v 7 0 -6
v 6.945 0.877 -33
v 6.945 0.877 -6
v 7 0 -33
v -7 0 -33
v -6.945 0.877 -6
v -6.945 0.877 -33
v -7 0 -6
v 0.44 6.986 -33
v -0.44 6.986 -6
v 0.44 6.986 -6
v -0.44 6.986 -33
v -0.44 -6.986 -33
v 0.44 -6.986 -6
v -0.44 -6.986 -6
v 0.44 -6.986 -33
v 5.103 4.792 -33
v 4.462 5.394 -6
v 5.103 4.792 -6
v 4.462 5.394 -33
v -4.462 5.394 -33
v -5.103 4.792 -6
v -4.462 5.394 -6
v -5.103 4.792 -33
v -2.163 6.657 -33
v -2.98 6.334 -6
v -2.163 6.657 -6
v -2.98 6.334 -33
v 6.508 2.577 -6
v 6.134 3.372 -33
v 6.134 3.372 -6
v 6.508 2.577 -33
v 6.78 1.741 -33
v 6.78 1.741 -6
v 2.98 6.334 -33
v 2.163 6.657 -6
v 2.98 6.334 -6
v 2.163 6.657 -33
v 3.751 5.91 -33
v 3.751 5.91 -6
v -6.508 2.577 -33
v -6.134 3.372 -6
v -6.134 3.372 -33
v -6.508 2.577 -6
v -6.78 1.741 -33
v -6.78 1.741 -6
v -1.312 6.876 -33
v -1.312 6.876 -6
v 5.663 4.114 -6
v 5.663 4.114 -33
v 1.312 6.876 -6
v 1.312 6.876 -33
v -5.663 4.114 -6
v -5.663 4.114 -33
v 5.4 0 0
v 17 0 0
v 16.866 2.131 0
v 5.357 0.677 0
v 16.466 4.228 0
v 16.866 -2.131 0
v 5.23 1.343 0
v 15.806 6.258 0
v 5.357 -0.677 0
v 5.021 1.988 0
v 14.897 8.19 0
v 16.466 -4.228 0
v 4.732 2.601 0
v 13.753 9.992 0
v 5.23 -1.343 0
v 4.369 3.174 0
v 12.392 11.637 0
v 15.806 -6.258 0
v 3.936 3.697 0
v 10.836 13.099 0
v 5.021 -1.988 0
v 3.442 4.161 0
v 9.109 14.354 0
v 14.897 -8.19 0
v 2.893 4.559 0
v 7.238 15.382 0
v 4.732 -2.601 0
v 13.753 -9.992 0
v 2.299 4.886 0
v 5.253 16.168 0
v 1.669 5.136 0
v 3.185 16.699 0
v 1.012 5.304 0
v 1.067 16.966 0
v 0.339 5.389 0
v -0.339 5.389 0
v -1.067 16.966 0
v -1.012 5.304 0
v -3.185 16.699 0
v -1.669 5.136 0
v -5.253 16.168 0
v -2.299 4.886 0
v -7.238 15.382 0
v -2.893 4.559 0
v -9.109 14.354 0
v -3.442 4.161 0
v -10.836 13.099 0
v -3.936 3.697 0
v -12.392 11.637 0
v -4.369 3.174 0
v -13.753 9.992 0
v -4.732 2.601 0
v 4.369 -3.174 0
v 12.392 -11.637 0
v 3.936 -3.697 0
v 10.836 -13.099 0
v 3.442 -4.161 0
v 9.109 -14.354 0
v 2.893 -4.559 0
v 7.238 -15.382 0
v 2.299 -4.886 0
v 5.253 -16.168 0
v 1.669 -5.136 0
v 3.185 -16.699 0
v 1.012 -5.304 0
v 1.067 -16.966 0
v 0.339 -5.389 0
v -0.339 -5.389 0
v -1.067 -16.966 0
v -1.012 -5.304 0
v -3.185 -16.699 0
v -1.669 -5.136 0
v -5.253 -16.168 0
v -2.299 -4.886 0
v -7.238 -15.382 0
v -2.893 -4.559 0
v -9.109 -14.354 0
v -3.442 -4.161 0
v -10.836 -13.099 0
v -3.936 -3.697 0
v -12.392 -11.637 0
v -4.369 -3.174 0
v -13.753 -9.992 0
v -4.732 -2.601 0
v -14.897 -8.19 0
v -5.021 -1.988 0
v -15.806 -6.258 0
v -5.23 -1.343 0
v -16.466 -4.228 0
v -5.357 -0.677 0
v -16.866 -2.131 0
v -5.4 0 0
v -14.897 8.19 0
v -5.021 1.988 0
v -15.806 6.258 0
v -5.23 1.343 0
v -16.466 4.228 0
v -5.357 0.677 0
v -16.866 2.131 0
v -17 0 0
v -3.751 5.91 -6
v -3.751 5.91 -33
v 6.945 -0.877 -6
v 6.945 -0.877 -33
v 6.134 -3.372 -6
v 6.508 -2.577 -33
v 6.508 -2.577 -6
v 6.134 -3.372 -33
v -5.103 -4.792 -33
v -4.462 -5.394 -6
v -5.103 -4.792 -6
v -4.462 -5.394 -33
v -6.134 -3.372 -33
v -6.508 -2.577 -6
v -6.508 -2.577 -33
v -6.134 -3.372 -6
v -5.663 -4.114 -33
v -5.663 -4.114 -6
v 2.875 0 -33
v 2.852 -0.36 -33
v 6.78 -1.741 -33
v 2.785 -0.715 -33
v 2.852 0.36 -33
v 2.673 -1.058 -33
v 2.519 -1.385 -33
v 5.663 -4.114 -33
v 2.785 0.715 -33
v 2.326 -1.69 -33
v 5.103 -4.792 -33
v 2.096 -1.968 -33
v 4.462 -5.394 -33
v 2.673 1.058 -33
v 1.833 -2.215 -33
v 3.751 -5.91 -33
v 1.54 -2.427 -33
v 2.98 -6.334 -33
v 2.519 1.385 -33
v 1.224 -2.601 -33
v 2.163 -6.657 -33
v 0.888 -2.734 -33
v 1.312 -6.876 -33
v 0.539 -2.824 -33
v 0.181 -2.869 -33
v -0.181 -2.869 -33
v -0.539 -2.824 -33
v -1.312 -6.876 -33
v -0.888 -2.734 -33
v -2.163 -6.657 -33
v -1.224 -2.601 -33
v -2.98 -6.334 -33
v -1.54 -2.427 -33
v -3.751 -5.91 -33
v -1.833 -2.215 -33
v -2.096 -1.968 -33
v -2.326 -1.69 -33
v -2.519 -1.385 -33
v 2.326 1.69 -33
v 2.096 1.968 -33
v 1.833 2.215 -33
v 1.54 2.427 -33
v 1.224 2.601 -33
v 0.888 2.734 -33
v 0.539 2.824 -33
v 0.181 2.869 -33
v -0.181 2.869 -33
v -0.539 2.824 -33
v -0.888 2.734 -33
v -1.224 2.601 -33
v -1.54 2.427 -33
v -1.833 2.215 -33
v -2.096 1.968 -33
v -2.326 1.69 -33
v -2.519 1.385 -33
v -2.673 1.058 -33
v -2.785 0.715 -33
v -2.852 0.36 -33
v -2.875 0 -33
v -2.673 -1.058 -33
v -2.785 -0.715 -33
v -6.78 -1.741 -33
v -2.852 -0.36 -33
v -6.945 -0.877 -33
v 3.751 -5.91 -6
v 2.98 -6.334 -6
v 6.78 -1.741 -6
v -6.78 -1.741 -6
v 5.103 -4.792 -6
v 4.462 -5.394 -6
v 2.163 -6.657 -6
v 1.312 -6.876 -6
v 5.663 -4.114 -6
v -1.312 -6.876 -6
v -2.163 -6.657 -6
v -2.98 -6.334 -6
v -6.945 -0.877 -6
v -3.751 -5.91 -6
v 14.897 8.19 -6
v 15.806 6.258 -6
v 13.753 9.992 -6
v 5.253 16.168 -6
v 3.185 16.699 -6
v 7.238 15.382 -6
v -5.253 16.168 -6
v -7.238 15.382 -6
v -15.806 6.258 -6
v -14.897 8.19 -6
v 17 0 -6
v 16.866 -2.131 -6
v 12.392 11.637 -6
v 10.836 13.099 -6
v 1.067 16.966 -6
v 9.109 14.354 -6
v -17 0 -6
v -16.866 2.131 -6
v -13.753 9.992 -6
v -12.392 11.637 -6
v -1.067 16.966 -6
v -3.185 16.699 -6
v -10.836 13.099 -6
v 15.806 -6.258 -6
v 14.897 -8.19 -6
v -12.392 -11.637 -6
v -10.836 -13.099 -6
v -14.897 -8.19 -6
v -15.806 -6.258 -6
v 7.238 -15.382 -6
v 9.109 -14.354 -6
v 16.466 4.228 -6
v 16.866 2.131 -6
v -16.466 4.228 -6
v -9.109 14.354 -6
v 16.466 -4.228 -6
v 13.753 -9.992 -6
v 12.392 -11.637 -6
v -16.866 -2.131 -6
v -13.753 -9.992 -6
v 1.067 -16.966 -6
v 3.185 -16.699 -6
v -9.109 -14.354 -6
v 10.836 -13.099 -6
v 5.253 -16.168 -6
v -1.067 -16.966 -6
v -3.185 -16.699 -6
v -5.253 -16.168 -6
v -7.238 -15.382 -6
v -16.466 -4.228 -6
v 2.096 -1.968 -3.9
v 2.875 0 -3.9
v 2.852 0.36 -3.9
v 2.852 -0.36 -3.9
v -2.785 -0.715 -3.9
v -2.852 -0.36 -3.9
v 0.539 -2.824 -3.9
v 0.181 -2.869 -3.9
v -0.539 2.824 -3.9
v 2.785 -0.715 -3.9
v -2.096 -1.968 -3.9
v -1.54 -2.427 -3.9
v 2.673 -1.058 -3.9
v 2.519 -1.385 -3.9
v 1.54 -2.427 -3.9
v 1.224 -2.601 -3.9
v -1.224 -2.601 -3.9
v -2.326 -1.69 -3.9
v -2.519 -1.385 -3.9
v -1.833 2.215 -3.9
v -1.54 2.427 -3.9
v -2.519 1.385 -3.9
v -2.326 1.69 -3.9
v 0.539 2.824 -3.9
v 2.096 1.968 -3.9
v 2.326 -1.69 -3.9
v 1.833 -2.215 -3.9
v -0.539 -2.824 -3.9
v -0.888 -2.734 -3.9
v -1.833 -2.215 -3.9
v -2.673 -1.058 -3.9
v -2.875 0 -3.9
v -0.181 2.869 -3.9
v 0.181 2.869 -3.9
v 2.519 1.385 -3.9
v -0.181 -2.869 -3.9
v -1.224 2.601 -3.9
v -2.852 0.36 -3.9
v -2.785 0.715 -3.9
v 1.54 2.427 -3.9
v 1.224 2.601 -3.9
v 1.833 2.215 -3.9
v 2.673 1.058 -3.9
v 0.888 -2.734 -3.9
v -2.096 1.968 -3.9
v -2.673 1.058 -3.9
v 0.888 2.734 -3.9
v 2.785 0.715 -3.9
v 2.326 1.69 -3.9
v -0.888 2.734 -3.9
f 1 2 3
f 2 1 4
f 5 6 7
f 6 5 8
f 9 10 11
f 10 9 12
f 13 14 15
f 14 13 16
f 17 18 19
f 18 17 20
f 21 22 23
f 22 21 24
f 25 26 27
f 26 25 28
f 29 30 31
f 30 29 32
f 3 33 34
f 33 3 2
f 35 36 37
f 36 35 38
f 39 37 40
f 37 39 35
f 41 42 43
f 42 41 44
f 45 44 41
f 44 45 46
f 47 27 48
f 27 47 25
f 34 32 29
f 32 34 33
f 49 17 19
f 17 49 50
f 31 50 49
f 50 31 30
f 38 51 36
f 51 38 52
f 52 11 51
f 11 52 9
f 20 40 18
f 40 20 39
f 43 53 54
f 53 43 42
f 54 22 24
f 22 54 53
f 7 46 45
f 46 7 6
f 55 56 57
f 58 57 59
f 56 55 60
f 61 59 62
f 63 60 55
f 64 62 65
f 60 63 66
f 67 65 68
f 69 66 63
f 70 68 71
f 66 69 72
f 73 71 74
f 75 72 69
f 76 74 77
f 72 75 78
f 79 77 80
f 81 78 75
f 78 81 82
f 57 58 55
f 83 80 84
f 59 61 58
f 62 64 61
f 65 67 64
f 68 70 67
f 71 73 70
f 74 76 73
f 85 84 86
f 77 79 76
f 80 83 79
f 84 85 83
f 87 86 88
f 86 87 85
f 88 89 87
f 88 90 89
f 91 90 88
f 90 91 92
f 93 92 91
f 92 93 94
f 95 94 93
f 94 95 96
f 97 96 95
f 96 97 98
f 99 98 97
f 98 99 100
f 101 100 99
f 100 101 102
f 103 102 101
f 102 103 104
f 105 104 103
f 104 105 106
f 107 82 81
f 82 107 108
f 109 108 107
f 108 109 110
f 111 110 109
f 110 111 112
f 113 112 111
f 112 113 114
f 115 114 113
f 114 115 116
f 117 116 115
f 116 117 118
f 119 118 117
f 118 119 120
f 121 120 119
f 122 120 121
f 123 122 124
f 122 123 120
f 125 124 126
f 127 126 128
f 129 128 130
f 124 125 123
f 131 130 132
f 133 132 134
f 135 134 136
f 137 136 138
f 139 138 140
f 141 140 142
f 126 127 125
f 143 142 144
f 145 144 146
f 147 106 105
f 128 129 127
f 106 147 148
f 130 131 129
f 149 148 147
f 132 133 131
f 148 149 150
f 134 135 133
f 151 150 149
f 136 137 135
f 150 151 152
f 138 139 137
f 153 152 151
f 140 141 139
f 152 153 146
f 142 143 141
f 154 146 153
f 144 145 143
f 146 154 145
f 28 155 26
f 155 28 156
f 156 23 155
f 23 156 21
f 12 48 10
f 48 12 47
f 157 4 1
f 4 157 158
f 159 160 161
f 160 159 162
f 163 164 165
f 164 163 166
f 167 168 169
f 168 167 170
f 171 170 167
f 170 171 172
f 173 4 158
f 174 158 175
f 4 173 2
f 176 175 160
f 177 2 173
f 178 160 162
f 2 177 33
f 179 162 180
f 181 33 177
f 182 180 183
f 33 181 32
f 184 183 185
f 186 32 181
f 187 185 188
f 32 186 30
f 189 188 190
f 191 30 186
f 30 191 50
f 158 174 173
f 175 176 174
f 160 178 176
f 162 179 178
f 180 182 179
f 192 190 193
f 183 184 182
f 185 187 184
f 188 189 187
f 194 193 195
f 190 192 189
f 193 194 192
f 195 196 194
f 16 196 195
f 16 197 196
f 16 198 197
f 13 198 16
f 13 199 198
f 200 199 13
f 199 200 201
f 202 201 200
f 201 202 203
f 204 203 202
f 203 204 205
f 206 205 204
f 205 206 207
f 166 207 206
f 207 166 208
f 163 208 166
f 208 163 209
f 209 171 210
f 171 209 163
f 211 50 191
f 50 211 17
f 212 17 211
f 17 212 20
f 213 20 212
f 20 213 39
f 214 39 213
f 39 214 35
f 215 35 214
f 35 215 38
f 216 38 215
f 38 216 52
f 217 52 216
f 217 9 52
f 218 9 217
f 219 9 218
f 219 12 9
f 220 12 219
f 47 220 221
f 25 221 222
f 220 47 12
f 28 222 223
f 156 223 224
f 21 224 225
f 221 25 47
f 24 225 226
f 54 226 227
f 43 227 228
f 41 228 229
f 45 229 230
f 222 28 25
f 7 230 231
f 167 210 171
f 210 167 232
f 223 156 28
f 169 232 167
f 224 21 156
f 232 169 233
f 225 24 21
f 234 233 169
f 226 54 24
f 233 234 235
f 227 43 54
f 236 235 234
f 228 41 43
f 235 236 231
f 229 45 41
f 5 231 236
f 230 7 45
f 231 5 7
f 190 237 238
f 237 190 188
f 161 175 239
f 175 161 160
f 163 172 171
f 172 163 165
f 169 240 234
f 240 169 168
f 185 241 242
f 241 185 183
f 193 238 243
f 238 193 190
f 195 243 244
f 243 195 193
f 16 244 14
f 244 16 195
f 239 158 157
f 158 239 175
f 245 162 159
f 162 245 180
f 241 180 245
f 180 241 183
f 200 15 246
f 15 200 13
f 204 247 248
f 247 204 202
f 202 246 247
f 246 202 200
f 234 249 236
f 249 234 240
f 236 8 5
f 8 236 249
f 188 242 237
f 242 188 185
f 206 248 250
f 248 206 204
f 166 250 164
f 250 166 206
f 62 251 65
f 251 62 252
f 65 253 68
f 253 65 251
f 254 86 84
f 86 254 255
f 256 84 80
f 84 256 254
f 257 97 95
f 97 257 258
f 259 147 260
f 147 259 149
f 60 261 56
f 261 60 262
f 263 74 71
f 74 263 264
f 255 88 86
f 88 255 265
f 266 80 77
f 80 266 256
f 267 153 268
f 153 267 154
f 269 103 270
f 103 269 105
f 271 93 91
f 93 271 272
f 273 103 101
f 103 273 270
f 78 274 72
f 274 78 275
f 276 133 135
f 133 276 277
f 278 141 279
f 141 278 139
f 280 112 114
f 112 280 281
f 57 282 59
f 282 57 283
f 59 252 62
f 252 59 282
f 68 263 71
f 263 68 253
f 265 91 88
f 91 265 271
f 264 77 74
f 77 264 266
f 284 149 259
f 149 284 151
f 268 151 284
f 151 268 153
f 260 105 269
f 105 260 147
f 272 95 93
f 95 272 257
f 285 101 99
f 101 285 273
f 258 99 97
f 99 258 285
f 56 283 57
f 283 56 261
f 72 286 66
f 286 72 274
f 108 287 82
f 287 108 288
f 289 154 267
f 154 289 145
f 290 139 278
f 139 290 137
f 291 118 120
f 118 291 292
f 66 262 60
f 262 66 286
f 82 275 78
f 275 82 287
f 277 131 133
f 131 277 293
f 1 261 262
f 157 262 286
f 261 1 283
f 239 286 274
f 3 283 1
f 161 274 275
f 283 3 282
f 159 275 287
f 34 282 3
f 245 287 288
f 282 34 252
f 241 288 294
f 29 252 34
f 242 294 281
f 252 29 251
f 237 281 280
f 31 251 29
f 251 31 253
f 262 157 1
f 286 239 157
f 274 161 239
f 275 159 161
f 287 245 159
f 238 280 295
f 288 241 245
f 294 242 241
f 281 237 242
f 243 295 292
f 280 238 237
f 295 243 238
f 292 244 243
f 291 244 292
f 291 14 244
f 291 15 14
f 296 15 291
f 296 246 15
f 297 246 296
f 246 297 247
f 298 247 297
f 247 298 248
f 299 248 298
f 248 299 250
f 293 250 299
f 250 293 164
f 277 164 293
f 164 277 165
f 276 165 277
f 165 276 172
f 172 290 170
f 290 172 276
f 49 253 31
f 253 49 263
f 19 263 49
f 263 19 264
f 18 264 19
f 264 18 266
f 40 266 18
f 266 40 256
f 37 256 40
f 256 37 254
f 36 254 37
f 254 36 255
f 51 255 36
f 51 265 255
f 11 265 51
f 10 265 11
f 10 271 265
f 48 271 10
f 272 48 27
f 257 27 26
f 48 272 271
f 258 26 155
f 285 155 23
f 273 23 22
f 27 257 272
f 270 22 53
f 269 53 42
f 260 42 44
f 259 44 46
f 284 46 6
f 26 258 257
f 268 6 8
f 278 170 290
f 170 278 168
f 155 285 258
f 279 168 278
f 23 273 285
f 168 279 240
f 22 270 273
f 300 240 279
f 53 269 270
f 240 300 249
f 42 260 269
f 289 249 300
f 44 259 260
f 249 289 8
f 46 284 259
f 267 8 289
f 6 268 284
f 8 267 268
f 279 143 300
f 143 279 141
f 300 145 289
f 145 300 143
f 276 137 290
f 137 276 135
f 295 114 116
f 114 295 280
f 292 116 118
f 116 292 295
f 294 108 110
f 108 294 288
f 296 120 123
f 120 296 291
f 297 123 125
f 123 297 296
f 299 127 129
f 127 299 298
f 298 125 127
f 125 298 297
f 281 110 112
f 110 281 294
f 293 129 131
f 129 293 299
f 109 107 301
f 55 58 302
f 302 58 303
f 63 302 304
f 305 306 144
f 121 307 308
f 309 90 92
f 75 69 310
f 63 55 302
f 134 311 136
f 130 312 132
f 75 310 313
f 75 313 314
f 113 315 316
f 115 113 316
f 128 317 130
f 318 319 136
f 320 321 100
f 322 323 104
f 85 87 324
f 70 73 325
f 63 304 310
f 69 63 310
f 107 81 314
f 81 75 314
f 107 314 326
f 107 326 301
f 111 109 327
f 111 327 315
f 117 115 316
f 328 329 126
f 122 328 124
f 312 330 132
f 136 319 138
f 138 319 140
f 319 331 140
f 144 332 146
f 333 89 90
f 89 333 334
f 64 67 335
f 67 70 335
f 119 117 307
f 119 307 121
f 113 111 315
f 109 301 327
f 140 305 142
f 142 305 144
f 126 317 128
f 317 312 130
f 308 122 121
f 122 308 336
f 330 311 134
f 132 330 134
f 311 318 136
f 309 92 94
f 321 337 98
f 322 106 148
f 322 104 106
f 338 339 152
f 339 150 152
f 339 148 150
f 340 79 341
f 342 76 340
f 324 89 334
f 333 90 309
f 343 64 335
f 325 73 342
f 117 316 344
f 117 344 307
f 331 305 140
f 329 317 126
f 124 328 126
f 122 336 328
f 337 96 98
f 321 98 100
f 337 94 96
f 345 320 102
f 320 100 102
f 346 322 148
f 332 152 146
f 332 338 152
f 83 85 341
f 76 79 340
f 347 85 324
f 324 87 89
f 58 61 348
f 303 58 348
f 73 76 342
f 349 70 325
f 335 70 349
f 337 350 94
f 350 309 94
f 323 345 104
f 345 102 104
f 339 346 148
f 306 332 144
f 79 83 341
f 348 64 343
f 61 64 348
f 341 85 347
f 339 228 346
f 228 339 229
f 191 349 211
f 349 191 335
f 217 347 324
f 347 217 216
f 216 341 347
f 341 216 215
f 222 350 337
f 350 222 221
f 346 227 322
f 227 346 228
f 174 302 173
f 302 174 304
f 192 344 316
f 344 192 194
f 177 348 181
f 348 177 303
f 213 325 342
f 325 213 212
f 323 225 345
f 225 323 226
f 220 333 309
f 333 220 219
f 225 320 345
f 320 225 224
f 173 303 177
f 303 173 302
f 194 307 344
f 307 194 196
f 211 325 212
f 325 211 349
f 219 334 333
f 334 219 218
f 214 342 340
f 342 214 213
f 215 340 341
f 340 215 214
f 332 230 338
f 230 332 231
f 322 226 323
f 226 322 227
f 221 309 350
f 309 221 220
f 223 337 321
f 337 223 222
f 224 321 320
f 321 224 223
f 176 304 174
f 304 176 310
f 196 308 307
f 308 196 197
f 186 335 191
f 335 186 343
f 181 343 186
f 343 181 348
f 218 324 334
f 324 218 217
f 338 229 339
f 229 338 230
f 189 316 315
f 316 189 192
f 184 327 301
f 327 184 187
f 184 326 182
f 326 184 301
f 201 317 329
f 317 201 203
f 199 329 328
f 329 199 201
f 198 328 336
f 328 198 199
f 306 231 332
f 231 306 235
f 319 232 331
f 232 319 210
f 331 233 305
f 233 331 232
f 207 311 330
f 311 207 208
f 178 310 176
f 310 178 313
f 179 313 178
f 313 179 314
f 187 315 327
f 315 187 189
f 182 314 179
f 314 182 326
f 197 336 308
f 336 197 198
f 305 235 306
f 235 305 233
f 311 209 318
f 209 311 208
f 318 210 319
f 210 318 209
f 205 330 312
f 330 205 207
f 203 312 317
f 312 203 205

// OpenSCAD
$fn = 50;


difference() {
	union() {
		translate(v = [0, 0, -33.0000000000]) {
			cylinder(h = 33, r = 7.0000000000);
		}
		translate(v = [0, 0, -6.0000000000]) {
			cylinder(h = 6, r = 17.0000000000);
		}
	}
	union() {
		translate(v = [0, 0, 0]) {
			rotate(a = [0, 0, 0]) {
				difference() {
					union() {
						#translate(v = [0, 0, -33.0000000000]) {
							cylinder(h = 33, r = 2.6000000000);
						}
						#translate(v = [0, 0, -3.9000000000]) {
							cylinder(h = 3.9000000000, r = 7.0000000000, r1 = 2.8750000000, r2 = 5.4000000000);
						}
						#translate(v = [0, 0, -33.0000000000]) {
							cylinder(h = 33, r = 2.8750000000);
						}
						#translate(v = [0, 0, -33.0000000000]) {
							cylinder(h = 33, r = 2.6000000000);
						}
					}
					union();
				}
			}
		}
	}
}
